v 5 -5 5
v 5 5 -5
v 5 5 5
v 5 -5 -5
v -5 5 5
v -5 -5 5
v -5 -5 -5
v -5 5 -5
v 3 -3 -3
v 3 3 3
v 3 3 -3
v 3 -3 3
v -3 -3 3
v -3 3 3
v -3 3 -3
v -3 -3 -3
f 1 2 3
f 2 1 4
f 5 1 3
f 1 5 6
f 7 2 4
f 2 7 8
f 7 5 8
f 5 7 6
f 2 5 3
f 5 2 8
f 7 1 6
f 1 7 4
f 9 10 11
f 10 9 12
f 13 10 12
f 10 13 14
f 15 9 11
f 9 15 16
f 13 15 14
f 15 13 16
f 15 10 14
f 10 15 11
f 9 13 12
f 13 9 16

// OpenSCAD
// Set resolution for curves (though not applicable to a perfect cube)
$fn = 24;

difference() {
    // Outer cube: 10x10x10mm, centered at (0,0,0)
    cube([10, 10, 10], center = true);

    // Inner cube: 6x6x6mm (10mm - 2*2mm wall thickness), centered at (0,0,0)
    // This creates 2mm minimum wall thickness on all sides
    cube([6, 6, 6], center = true);
}
